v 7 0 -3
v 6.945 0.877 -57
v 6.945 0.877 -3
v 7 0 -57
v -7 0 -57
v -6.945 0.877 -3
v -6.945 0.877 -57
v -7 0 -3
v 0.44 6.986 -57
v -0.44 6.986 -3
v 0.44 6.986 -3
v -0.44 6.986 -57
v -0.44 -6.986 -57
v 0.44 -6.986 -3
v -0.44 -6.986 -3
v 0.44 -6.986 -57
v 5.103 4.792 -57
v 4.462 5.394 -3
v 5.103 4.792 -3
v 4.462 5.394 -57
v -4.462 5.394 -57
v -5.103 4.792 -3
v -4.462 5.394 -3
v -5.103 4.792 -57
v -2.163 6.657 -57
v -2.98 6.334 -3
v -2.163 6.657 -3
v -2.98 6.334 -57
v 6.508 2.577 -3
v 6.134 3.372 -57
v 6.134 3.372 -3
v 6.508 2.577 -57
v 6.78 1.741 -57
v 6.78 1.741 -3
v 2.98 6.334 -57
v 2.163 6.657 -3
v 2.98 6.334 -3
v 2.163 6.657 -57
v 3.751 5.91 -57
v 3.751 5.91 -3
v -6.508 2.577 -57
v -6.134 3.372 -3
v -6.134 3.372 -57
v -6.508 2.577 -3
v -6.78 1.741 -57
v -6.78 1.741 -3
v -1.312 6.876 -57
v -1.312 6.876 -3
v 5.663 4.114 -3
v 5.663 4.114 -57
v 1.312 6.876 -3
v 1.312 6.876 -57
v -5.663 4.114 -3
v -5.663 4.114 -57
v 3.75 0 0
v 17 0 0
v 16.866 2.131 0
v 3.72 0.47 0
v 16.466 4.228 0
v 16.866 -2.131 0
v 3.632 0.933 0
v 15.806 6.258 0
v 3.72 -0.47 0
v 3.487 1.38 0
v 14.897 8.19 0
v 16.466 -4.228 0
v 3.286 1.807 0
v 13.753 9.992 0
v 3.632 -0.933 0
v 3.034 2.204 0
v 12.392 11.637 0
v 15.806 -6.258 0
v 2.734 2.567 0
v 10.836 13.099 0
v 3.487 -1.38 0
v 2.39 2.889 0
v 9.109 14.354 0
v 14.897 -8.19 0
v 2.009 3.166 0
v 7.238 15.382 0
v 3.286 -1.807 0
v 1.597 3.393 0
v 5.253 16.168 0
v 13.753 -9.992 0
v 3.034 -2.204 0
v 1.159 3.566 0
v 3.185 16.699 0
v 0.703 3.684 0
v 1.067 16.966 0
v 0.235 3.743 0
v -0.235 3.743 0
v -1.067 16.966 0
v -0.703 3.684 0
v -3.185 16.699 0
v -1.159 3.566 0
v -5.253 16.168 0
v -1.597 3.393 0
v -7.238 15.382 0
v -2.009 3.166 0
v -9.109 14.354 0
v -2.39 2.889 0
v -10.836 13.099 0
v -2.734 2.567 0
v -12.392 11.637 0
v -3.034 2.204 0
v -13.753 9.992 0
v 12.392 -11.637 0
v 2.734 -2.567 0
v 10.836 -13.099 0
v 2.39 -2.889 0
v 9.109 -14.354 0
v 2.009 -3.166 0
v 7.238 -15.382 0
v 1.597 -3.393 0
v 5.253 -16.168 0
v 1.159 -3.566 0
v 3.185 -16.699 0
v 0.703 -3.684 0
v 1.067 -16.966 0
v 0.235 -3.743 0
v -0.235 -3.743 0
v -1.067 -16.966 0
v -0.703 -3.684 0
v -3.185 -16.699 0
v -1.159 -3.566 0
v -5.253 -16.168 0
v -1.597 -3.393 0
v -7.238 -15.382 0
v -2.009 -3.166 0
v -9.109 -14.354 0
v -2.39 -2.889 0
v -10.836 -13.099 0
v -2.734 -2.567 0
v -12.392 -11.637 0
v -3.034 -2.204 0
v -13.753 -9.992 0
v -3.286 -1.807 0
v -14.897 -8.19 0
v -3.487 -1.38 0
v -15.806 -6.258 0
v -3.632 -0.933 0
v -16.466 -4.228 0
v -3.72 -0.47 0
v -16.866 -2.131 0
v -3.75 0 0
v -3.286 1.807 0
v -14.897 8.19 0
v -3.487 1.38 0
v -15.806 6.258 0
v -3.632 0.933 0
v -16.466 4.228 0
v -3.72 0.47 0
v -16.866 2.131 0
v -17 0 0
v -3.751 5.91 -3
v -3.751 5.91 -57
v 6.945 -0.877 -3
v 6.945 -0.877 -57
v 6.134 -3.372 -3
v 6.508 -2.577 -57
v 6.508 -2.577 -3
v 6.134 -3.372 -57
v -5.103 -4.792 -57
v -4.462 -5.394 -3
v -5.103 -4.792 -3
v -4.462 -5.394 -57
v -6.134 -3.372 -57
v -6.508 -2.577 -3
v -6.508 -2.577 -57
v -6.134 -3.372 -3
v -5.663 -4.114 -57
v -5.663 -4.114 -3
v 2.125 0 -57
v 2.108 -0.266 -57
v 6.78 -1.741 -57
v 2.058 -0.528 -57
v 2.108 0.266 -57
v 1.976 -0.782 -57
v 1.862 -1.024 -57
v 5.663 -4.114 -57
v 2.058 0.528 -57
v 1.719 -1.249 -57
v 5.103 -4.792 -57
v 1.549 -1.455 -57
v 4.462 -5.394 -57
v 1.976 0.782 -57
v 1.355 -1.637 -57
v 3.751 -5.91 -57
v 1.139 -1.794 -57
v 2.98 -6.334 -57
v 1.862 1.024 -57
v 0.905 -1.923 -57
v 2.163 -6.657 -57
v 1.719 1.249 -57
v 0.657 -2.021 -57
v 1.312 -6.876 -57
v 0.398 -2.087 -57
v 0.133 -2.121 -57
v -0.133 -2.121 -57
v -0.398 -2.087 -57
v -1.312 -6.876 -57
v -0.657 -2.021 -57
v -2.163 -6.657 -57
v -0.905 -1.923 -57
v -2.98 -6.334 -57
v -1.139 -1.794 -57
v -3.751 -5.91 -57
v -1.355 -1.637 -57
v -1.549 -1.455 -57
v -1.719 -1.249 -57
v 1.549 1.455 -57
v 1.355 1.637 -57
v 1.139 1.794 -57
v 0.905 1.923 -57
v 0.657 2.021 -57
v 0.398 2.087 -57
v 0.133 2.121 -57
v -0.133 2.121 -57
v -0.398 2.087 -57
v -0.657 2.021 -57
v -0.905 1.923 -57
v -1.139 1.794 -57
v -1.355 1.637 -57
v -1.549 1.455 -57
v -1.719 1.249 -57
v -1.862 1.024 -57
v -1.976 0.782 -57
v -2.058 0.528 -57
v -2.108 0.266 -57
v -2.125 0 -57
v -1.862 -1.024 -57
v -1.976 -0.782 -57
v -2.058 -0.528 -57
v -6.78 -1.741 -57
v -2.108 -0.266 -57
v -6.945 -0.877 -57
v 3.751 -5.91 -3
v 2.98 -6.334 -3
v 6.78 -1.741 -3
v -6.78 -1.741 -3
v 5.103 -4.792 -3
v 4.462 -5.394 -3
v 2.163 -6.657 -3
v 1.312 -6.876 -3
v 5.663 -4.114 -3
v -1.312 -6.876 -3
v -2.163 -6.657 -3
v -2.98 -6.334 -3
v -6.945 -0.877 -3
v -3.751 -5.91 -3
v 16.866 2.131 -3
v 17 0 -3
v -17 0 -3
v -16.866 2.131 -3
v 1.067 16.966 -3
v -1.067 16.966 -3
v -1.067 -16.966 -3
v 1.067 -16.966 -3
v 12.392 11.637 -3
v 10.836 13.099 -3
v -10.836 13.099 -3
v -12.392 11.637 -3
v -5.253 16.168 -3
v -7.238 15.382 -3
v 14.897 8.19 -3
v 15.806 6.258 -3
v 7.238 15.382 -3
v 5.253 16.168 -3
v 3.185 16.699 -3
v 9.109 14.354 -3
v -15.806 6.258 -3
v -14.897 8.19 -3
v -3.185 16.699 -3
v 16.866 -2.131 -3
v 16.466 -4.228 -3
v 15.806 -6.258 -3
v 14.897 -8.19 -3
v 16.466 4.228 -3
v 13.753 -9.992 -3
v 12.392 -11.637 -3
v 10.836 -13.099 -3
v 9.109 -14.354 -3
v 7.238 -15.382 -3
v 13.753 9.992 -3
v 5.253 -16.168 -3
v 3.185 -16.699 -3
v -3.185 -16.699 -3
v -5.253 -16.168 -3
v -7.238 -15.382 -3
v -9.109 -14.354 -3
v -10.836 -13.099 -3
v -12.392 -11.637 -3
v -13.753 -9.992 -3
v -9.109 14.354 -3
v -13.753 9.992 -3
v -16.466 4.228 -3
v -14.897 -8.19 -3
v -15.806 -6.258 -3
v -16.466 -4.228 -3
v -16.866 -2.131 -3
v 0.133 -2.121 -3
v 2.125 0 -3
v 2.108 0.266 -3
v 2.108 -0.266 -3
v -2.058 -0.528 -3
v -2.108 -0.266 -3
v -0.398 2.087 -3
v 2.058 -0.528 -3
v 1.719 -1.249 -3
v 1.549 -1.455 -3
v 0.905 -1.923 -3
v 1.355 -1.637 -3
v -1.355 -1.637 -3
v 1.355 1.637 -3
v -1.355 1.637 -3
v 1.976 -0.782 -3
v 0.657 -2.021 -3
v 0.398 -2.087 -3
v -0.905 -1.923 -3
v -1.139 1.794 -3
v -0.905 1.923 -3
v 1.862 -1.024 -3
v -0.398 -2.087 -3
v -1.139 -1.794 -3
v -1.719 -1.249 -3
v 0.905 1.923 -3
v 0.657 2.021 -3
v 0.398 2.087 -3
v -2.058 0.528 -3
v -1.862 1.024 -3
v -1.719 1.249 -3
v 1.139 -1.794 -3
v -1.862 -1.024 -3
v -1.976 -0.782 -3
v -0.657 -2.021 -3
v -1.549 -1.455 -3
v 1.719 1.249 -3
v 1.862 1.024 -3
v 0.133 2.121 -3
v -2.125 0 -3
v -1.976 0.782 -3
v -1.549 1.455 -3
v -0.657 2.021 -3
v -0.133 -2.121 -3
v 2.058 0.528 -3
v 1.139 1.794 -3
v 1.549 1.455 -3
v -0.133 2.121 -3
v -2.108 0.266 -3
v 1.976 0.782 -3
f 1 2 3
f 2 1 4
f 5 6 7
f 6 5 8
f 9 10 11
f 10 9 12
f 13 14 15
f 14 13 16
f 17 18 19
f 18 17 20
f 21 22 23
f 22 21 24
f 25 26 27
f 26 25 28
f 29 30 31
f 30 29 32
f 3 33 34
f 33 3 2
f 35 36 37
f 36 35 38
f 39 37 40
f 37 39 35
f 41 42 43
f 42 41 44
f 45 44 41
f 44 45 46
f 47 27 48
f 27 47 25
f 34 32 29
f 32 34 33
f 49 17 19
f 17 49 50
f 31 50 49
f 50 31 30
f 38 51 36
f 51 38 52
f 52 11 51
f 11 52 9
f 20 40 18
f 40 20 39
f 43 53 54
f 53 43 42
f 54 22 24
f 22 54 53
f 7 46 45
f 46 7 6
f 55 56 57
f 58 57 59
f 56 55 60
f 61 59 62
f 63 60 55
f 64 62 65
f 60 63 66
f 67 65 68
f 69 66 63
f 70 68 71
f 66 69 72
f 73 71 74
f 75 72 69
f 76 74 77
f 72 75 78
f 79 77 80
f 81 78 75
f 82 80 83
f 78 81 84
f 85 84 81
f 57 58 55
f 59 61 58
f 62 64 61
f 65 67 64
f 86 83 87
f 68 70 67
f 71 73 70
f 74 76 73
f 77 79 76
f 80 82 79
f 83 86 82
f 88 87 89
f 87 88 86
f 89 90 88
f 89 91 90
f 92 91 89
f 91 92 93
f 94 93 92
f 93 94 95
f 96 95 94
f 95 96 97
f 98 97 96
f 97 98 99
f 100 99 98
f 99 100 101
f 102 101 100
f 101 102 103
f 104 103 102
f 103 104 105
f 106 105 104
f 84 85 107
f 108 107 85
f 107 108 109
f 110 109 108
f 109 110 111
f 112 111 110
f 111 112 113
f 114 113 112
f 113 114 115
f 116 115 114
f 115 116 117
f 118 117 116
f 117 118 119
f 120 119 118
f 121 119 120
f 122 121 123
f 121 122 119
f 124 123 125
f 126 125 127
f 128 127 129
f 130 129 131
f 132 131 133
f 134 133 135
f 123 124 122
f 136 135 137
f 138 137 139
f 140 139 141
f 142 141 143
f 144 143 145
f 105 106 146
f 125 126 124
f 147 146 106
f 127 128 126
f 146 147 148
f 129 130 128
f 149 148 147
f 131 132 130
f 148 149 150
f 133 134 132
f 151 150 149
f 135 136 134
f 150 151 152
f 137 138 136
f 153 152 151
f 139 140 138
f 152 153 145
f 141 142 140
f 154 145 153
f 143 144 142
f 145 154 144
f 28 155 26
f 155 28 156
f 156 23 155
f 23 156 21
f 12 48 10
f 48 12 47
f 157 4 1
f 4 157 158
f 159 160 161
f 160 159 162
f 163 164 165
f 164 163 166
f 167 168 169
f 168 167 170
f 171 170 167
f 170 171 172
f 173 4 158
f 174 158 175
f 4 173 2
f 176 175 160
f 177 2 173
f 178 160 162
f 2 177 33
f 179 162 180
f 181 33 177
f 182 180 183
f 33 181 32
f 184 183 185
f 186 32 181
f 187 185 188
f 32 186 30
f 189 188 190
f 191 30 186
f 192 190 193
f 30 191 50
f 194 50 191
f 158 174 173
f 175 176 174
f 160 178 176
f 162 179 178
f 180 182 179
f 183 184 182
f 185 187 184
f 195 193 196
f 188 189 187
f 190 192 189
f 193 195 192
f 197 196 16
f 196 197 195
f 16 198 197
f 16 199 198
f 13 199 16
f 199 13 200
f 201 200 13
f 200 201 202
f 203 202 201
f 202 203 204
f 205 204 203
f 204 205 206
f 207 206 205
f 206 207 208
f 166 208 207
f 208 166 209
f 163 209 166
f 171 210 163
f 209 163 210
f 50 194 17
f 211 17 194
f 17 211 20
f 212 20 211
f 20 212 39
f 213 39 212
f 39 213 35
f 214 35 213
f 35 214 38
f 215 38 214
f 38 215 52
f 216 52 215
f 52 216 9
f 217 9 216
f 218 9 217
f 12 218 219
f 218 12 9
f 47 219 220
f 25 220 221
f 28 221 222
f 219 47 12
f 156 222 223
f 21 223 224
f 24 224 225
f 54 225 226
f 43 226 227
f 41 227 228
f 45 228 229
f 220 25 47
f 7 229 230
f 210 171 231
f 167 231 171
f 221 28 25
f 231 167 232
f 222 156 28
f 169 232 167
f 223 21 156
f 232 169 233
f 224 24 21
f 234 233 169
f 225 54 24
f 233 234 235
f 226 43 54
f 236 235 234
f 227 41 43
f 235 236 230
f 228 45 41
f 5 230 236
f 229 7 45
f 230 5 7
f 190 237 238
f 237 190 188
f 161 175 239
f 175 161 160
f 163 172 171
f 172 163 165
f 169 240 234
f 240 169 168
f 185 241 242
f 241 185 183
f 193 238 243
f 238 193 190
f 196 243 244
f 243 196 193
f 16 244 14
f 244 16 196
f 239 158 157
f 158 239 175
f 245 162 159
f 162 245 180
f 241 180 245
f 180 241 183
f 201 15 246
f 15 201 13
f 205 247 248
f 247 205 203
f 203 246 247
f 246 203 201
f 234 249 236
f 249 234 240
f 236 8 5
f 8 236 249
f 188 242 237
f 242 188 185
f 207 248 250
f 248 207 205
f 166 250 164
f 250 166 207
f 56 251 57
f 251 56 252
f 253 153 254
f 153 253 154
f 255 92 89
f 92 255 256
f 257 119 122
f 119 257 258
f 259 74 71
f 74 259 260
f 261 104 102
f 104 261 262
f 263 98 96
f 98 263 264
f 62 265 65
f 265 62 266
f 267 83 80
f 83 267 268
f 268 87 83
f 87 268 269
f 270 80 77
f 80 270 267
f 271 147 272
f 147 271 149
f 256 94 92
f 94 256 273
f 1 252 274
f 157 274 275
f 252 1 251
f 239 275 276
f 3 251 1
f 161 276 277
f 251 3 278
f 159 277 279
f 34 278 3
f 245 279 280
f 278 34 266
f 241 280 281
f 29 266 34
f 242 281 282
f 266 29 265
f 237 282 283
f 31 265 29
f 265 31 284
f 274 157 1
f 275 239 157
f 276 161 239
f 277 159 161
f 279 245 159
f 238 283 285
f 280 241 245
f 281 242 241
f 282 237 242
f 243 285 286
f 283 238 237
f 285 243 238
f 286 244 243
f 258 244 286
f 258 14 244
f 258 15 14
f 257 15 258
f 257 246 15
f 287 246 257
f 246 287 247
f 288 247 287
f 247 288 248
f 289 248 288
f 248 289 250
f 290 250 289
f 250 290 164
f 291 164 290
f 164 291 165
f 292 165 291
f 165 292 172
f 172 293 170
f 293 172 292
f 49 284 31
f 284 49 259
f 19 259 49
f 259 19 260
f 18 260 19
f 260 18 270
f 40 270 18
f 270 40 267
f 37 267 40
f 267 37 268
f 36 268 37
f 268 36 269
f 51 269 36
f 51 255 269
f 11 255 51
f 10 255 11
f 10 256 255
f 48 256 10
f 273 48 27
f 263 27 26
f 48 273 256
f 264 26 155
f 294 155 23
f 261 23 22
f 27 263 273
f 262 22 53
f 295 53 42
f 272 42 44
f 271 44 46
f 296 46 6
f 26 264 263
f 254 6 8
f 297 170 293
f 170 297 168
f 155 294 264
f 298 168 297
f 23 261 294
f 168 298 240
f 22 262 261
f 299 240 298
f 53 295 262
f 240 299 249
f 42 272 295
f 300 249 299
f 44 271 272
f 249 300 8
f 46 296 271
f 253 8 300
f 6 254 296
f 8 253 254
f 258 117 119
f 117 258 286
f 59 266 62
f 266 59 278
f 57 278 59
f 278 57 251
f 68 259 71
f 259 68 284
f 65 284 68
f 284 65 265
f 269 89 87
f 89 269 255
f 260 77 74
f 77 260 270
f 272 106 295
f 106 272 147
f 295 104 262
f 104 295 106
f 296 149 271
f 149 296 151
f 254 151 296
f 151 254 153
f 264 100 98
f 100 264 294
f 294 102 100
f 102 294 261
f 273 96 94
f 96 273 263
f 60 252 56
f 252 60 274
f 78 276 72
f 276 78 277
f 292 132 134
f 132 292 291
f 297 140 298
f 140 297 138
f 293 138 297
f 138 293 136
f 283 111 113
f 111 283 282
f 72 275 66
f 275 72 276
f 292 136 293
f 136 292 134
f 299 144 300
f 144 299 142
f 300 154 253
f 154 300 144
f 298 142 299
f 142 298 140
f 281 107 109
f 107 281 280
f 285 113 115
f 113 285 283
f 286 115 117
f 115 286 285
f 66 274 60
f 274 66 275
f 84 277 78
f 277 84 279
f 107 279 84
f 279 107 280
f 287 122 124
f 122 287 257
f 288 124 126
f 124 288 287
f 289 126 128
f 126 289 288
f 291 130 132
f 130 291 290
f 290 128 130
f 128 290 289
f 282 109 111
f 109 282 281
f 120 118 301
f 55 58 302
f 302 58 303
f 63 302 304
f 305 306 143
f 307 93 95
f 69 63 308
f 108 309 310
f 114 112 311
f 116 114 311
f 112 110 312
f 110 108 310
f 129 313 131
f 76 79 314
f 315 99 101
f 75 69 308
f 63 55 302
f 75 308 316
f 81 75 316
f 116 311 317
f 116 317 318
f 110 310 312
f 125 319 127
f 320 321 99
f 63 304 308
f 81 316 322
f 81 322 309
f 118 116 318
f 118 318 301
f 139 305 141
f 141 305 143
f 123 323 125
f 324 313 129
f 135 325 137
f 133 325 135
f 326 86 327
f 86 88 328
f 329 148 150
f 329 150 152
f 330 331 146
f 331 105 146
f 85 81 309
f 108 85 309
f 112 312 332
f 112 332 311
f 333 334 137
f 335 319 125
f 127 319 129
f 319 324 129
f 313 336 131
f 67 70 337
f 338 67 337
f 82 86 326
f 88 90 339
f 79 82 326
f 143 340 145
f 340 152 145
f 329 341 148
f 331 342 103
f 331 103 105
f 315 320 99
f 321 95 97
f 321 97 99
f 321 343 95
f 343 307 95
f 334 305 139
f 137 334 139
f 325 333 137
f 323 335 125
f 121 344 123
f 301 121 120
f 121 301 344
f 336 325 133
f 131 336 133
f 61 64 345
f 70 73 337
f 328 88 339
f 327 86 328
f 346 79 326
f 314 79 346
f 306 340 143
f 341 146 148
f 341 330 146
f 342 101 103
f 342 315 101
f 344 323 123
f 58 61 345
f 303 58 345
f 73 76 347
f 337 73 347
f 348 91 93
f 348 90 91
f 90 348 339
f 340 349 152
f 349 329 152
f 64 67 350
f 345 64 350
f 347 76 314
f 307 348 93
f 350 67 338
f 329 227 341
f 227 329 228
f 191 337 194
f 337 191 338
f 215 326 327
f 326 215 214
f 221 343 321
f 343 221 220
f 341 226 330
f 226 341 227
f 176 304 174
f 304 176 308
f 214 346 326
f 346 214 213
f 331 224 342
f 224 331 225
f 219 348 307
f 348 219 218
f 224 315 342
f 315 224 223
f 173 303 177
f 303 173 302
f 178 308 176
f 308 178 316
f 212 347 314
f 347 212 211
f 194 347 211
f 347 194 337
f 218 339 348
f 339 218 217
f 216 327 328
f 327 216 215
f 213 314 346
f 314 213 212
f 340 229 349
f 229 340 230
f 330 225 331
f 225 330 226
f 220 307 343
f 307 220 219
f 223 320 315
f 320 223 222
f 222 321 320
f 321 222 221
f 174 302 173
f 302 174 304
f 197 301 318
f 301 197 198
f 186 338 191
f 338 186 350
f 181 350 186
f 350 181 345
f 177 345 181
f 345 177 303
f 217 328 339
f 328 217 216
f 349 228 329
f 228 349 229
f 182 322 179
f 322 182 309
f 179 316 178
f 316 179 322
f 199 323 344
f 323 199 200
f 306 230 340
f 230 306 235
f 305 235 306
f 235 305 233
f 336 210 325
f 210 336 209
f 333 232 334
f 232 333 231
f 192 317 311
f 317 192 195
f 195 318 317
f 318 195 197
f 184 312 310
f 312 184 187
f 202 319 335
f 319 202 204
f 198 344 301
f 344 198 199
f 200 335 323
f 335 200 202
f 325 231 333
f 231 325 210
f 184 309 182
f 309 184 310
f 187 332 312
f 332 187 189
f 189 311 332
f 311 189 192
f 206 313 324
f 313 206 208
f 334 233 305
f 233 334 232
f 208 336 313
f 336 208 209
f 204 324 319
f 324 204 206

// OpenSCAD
$fn = 50;


difference() {
	union() {
		translate(v = [0, 0, -57.0000000000]) {
			cylinder(h = 57, r = 7.0000000000);
		}
		translate(v = [0, 0, -3.0000000000]) {
			cylinder(h = 3, r = 17.0000000000);
		}
	}
	union() {
		translate(v = [0, 0, 0]) {
			rotate(a = [0, 0, 0]) {
				difference() {
					union() {
						#translate(v = [0, 0, -57.0000000000]) {
							cylinder(h = 57, r = 2.0000000000);
						}
						#translate(v = [0, 0, -3]) {
							cylinder(h = 3, r = 7.0000000000, r1 = 2.1250000000, r2 = 3.7500000000);
						}
						#translate(v = [0, 0, -57.0000000000]) {
							cylinder(h = 57, r = 2.1250000000);
						}
						#translate(v = [0, 0, -57.0000000000]) {
							cylinder(h = 57, r = 2.0000000000);
						}
					}
					union();
				}
			}
		}
	}
}
